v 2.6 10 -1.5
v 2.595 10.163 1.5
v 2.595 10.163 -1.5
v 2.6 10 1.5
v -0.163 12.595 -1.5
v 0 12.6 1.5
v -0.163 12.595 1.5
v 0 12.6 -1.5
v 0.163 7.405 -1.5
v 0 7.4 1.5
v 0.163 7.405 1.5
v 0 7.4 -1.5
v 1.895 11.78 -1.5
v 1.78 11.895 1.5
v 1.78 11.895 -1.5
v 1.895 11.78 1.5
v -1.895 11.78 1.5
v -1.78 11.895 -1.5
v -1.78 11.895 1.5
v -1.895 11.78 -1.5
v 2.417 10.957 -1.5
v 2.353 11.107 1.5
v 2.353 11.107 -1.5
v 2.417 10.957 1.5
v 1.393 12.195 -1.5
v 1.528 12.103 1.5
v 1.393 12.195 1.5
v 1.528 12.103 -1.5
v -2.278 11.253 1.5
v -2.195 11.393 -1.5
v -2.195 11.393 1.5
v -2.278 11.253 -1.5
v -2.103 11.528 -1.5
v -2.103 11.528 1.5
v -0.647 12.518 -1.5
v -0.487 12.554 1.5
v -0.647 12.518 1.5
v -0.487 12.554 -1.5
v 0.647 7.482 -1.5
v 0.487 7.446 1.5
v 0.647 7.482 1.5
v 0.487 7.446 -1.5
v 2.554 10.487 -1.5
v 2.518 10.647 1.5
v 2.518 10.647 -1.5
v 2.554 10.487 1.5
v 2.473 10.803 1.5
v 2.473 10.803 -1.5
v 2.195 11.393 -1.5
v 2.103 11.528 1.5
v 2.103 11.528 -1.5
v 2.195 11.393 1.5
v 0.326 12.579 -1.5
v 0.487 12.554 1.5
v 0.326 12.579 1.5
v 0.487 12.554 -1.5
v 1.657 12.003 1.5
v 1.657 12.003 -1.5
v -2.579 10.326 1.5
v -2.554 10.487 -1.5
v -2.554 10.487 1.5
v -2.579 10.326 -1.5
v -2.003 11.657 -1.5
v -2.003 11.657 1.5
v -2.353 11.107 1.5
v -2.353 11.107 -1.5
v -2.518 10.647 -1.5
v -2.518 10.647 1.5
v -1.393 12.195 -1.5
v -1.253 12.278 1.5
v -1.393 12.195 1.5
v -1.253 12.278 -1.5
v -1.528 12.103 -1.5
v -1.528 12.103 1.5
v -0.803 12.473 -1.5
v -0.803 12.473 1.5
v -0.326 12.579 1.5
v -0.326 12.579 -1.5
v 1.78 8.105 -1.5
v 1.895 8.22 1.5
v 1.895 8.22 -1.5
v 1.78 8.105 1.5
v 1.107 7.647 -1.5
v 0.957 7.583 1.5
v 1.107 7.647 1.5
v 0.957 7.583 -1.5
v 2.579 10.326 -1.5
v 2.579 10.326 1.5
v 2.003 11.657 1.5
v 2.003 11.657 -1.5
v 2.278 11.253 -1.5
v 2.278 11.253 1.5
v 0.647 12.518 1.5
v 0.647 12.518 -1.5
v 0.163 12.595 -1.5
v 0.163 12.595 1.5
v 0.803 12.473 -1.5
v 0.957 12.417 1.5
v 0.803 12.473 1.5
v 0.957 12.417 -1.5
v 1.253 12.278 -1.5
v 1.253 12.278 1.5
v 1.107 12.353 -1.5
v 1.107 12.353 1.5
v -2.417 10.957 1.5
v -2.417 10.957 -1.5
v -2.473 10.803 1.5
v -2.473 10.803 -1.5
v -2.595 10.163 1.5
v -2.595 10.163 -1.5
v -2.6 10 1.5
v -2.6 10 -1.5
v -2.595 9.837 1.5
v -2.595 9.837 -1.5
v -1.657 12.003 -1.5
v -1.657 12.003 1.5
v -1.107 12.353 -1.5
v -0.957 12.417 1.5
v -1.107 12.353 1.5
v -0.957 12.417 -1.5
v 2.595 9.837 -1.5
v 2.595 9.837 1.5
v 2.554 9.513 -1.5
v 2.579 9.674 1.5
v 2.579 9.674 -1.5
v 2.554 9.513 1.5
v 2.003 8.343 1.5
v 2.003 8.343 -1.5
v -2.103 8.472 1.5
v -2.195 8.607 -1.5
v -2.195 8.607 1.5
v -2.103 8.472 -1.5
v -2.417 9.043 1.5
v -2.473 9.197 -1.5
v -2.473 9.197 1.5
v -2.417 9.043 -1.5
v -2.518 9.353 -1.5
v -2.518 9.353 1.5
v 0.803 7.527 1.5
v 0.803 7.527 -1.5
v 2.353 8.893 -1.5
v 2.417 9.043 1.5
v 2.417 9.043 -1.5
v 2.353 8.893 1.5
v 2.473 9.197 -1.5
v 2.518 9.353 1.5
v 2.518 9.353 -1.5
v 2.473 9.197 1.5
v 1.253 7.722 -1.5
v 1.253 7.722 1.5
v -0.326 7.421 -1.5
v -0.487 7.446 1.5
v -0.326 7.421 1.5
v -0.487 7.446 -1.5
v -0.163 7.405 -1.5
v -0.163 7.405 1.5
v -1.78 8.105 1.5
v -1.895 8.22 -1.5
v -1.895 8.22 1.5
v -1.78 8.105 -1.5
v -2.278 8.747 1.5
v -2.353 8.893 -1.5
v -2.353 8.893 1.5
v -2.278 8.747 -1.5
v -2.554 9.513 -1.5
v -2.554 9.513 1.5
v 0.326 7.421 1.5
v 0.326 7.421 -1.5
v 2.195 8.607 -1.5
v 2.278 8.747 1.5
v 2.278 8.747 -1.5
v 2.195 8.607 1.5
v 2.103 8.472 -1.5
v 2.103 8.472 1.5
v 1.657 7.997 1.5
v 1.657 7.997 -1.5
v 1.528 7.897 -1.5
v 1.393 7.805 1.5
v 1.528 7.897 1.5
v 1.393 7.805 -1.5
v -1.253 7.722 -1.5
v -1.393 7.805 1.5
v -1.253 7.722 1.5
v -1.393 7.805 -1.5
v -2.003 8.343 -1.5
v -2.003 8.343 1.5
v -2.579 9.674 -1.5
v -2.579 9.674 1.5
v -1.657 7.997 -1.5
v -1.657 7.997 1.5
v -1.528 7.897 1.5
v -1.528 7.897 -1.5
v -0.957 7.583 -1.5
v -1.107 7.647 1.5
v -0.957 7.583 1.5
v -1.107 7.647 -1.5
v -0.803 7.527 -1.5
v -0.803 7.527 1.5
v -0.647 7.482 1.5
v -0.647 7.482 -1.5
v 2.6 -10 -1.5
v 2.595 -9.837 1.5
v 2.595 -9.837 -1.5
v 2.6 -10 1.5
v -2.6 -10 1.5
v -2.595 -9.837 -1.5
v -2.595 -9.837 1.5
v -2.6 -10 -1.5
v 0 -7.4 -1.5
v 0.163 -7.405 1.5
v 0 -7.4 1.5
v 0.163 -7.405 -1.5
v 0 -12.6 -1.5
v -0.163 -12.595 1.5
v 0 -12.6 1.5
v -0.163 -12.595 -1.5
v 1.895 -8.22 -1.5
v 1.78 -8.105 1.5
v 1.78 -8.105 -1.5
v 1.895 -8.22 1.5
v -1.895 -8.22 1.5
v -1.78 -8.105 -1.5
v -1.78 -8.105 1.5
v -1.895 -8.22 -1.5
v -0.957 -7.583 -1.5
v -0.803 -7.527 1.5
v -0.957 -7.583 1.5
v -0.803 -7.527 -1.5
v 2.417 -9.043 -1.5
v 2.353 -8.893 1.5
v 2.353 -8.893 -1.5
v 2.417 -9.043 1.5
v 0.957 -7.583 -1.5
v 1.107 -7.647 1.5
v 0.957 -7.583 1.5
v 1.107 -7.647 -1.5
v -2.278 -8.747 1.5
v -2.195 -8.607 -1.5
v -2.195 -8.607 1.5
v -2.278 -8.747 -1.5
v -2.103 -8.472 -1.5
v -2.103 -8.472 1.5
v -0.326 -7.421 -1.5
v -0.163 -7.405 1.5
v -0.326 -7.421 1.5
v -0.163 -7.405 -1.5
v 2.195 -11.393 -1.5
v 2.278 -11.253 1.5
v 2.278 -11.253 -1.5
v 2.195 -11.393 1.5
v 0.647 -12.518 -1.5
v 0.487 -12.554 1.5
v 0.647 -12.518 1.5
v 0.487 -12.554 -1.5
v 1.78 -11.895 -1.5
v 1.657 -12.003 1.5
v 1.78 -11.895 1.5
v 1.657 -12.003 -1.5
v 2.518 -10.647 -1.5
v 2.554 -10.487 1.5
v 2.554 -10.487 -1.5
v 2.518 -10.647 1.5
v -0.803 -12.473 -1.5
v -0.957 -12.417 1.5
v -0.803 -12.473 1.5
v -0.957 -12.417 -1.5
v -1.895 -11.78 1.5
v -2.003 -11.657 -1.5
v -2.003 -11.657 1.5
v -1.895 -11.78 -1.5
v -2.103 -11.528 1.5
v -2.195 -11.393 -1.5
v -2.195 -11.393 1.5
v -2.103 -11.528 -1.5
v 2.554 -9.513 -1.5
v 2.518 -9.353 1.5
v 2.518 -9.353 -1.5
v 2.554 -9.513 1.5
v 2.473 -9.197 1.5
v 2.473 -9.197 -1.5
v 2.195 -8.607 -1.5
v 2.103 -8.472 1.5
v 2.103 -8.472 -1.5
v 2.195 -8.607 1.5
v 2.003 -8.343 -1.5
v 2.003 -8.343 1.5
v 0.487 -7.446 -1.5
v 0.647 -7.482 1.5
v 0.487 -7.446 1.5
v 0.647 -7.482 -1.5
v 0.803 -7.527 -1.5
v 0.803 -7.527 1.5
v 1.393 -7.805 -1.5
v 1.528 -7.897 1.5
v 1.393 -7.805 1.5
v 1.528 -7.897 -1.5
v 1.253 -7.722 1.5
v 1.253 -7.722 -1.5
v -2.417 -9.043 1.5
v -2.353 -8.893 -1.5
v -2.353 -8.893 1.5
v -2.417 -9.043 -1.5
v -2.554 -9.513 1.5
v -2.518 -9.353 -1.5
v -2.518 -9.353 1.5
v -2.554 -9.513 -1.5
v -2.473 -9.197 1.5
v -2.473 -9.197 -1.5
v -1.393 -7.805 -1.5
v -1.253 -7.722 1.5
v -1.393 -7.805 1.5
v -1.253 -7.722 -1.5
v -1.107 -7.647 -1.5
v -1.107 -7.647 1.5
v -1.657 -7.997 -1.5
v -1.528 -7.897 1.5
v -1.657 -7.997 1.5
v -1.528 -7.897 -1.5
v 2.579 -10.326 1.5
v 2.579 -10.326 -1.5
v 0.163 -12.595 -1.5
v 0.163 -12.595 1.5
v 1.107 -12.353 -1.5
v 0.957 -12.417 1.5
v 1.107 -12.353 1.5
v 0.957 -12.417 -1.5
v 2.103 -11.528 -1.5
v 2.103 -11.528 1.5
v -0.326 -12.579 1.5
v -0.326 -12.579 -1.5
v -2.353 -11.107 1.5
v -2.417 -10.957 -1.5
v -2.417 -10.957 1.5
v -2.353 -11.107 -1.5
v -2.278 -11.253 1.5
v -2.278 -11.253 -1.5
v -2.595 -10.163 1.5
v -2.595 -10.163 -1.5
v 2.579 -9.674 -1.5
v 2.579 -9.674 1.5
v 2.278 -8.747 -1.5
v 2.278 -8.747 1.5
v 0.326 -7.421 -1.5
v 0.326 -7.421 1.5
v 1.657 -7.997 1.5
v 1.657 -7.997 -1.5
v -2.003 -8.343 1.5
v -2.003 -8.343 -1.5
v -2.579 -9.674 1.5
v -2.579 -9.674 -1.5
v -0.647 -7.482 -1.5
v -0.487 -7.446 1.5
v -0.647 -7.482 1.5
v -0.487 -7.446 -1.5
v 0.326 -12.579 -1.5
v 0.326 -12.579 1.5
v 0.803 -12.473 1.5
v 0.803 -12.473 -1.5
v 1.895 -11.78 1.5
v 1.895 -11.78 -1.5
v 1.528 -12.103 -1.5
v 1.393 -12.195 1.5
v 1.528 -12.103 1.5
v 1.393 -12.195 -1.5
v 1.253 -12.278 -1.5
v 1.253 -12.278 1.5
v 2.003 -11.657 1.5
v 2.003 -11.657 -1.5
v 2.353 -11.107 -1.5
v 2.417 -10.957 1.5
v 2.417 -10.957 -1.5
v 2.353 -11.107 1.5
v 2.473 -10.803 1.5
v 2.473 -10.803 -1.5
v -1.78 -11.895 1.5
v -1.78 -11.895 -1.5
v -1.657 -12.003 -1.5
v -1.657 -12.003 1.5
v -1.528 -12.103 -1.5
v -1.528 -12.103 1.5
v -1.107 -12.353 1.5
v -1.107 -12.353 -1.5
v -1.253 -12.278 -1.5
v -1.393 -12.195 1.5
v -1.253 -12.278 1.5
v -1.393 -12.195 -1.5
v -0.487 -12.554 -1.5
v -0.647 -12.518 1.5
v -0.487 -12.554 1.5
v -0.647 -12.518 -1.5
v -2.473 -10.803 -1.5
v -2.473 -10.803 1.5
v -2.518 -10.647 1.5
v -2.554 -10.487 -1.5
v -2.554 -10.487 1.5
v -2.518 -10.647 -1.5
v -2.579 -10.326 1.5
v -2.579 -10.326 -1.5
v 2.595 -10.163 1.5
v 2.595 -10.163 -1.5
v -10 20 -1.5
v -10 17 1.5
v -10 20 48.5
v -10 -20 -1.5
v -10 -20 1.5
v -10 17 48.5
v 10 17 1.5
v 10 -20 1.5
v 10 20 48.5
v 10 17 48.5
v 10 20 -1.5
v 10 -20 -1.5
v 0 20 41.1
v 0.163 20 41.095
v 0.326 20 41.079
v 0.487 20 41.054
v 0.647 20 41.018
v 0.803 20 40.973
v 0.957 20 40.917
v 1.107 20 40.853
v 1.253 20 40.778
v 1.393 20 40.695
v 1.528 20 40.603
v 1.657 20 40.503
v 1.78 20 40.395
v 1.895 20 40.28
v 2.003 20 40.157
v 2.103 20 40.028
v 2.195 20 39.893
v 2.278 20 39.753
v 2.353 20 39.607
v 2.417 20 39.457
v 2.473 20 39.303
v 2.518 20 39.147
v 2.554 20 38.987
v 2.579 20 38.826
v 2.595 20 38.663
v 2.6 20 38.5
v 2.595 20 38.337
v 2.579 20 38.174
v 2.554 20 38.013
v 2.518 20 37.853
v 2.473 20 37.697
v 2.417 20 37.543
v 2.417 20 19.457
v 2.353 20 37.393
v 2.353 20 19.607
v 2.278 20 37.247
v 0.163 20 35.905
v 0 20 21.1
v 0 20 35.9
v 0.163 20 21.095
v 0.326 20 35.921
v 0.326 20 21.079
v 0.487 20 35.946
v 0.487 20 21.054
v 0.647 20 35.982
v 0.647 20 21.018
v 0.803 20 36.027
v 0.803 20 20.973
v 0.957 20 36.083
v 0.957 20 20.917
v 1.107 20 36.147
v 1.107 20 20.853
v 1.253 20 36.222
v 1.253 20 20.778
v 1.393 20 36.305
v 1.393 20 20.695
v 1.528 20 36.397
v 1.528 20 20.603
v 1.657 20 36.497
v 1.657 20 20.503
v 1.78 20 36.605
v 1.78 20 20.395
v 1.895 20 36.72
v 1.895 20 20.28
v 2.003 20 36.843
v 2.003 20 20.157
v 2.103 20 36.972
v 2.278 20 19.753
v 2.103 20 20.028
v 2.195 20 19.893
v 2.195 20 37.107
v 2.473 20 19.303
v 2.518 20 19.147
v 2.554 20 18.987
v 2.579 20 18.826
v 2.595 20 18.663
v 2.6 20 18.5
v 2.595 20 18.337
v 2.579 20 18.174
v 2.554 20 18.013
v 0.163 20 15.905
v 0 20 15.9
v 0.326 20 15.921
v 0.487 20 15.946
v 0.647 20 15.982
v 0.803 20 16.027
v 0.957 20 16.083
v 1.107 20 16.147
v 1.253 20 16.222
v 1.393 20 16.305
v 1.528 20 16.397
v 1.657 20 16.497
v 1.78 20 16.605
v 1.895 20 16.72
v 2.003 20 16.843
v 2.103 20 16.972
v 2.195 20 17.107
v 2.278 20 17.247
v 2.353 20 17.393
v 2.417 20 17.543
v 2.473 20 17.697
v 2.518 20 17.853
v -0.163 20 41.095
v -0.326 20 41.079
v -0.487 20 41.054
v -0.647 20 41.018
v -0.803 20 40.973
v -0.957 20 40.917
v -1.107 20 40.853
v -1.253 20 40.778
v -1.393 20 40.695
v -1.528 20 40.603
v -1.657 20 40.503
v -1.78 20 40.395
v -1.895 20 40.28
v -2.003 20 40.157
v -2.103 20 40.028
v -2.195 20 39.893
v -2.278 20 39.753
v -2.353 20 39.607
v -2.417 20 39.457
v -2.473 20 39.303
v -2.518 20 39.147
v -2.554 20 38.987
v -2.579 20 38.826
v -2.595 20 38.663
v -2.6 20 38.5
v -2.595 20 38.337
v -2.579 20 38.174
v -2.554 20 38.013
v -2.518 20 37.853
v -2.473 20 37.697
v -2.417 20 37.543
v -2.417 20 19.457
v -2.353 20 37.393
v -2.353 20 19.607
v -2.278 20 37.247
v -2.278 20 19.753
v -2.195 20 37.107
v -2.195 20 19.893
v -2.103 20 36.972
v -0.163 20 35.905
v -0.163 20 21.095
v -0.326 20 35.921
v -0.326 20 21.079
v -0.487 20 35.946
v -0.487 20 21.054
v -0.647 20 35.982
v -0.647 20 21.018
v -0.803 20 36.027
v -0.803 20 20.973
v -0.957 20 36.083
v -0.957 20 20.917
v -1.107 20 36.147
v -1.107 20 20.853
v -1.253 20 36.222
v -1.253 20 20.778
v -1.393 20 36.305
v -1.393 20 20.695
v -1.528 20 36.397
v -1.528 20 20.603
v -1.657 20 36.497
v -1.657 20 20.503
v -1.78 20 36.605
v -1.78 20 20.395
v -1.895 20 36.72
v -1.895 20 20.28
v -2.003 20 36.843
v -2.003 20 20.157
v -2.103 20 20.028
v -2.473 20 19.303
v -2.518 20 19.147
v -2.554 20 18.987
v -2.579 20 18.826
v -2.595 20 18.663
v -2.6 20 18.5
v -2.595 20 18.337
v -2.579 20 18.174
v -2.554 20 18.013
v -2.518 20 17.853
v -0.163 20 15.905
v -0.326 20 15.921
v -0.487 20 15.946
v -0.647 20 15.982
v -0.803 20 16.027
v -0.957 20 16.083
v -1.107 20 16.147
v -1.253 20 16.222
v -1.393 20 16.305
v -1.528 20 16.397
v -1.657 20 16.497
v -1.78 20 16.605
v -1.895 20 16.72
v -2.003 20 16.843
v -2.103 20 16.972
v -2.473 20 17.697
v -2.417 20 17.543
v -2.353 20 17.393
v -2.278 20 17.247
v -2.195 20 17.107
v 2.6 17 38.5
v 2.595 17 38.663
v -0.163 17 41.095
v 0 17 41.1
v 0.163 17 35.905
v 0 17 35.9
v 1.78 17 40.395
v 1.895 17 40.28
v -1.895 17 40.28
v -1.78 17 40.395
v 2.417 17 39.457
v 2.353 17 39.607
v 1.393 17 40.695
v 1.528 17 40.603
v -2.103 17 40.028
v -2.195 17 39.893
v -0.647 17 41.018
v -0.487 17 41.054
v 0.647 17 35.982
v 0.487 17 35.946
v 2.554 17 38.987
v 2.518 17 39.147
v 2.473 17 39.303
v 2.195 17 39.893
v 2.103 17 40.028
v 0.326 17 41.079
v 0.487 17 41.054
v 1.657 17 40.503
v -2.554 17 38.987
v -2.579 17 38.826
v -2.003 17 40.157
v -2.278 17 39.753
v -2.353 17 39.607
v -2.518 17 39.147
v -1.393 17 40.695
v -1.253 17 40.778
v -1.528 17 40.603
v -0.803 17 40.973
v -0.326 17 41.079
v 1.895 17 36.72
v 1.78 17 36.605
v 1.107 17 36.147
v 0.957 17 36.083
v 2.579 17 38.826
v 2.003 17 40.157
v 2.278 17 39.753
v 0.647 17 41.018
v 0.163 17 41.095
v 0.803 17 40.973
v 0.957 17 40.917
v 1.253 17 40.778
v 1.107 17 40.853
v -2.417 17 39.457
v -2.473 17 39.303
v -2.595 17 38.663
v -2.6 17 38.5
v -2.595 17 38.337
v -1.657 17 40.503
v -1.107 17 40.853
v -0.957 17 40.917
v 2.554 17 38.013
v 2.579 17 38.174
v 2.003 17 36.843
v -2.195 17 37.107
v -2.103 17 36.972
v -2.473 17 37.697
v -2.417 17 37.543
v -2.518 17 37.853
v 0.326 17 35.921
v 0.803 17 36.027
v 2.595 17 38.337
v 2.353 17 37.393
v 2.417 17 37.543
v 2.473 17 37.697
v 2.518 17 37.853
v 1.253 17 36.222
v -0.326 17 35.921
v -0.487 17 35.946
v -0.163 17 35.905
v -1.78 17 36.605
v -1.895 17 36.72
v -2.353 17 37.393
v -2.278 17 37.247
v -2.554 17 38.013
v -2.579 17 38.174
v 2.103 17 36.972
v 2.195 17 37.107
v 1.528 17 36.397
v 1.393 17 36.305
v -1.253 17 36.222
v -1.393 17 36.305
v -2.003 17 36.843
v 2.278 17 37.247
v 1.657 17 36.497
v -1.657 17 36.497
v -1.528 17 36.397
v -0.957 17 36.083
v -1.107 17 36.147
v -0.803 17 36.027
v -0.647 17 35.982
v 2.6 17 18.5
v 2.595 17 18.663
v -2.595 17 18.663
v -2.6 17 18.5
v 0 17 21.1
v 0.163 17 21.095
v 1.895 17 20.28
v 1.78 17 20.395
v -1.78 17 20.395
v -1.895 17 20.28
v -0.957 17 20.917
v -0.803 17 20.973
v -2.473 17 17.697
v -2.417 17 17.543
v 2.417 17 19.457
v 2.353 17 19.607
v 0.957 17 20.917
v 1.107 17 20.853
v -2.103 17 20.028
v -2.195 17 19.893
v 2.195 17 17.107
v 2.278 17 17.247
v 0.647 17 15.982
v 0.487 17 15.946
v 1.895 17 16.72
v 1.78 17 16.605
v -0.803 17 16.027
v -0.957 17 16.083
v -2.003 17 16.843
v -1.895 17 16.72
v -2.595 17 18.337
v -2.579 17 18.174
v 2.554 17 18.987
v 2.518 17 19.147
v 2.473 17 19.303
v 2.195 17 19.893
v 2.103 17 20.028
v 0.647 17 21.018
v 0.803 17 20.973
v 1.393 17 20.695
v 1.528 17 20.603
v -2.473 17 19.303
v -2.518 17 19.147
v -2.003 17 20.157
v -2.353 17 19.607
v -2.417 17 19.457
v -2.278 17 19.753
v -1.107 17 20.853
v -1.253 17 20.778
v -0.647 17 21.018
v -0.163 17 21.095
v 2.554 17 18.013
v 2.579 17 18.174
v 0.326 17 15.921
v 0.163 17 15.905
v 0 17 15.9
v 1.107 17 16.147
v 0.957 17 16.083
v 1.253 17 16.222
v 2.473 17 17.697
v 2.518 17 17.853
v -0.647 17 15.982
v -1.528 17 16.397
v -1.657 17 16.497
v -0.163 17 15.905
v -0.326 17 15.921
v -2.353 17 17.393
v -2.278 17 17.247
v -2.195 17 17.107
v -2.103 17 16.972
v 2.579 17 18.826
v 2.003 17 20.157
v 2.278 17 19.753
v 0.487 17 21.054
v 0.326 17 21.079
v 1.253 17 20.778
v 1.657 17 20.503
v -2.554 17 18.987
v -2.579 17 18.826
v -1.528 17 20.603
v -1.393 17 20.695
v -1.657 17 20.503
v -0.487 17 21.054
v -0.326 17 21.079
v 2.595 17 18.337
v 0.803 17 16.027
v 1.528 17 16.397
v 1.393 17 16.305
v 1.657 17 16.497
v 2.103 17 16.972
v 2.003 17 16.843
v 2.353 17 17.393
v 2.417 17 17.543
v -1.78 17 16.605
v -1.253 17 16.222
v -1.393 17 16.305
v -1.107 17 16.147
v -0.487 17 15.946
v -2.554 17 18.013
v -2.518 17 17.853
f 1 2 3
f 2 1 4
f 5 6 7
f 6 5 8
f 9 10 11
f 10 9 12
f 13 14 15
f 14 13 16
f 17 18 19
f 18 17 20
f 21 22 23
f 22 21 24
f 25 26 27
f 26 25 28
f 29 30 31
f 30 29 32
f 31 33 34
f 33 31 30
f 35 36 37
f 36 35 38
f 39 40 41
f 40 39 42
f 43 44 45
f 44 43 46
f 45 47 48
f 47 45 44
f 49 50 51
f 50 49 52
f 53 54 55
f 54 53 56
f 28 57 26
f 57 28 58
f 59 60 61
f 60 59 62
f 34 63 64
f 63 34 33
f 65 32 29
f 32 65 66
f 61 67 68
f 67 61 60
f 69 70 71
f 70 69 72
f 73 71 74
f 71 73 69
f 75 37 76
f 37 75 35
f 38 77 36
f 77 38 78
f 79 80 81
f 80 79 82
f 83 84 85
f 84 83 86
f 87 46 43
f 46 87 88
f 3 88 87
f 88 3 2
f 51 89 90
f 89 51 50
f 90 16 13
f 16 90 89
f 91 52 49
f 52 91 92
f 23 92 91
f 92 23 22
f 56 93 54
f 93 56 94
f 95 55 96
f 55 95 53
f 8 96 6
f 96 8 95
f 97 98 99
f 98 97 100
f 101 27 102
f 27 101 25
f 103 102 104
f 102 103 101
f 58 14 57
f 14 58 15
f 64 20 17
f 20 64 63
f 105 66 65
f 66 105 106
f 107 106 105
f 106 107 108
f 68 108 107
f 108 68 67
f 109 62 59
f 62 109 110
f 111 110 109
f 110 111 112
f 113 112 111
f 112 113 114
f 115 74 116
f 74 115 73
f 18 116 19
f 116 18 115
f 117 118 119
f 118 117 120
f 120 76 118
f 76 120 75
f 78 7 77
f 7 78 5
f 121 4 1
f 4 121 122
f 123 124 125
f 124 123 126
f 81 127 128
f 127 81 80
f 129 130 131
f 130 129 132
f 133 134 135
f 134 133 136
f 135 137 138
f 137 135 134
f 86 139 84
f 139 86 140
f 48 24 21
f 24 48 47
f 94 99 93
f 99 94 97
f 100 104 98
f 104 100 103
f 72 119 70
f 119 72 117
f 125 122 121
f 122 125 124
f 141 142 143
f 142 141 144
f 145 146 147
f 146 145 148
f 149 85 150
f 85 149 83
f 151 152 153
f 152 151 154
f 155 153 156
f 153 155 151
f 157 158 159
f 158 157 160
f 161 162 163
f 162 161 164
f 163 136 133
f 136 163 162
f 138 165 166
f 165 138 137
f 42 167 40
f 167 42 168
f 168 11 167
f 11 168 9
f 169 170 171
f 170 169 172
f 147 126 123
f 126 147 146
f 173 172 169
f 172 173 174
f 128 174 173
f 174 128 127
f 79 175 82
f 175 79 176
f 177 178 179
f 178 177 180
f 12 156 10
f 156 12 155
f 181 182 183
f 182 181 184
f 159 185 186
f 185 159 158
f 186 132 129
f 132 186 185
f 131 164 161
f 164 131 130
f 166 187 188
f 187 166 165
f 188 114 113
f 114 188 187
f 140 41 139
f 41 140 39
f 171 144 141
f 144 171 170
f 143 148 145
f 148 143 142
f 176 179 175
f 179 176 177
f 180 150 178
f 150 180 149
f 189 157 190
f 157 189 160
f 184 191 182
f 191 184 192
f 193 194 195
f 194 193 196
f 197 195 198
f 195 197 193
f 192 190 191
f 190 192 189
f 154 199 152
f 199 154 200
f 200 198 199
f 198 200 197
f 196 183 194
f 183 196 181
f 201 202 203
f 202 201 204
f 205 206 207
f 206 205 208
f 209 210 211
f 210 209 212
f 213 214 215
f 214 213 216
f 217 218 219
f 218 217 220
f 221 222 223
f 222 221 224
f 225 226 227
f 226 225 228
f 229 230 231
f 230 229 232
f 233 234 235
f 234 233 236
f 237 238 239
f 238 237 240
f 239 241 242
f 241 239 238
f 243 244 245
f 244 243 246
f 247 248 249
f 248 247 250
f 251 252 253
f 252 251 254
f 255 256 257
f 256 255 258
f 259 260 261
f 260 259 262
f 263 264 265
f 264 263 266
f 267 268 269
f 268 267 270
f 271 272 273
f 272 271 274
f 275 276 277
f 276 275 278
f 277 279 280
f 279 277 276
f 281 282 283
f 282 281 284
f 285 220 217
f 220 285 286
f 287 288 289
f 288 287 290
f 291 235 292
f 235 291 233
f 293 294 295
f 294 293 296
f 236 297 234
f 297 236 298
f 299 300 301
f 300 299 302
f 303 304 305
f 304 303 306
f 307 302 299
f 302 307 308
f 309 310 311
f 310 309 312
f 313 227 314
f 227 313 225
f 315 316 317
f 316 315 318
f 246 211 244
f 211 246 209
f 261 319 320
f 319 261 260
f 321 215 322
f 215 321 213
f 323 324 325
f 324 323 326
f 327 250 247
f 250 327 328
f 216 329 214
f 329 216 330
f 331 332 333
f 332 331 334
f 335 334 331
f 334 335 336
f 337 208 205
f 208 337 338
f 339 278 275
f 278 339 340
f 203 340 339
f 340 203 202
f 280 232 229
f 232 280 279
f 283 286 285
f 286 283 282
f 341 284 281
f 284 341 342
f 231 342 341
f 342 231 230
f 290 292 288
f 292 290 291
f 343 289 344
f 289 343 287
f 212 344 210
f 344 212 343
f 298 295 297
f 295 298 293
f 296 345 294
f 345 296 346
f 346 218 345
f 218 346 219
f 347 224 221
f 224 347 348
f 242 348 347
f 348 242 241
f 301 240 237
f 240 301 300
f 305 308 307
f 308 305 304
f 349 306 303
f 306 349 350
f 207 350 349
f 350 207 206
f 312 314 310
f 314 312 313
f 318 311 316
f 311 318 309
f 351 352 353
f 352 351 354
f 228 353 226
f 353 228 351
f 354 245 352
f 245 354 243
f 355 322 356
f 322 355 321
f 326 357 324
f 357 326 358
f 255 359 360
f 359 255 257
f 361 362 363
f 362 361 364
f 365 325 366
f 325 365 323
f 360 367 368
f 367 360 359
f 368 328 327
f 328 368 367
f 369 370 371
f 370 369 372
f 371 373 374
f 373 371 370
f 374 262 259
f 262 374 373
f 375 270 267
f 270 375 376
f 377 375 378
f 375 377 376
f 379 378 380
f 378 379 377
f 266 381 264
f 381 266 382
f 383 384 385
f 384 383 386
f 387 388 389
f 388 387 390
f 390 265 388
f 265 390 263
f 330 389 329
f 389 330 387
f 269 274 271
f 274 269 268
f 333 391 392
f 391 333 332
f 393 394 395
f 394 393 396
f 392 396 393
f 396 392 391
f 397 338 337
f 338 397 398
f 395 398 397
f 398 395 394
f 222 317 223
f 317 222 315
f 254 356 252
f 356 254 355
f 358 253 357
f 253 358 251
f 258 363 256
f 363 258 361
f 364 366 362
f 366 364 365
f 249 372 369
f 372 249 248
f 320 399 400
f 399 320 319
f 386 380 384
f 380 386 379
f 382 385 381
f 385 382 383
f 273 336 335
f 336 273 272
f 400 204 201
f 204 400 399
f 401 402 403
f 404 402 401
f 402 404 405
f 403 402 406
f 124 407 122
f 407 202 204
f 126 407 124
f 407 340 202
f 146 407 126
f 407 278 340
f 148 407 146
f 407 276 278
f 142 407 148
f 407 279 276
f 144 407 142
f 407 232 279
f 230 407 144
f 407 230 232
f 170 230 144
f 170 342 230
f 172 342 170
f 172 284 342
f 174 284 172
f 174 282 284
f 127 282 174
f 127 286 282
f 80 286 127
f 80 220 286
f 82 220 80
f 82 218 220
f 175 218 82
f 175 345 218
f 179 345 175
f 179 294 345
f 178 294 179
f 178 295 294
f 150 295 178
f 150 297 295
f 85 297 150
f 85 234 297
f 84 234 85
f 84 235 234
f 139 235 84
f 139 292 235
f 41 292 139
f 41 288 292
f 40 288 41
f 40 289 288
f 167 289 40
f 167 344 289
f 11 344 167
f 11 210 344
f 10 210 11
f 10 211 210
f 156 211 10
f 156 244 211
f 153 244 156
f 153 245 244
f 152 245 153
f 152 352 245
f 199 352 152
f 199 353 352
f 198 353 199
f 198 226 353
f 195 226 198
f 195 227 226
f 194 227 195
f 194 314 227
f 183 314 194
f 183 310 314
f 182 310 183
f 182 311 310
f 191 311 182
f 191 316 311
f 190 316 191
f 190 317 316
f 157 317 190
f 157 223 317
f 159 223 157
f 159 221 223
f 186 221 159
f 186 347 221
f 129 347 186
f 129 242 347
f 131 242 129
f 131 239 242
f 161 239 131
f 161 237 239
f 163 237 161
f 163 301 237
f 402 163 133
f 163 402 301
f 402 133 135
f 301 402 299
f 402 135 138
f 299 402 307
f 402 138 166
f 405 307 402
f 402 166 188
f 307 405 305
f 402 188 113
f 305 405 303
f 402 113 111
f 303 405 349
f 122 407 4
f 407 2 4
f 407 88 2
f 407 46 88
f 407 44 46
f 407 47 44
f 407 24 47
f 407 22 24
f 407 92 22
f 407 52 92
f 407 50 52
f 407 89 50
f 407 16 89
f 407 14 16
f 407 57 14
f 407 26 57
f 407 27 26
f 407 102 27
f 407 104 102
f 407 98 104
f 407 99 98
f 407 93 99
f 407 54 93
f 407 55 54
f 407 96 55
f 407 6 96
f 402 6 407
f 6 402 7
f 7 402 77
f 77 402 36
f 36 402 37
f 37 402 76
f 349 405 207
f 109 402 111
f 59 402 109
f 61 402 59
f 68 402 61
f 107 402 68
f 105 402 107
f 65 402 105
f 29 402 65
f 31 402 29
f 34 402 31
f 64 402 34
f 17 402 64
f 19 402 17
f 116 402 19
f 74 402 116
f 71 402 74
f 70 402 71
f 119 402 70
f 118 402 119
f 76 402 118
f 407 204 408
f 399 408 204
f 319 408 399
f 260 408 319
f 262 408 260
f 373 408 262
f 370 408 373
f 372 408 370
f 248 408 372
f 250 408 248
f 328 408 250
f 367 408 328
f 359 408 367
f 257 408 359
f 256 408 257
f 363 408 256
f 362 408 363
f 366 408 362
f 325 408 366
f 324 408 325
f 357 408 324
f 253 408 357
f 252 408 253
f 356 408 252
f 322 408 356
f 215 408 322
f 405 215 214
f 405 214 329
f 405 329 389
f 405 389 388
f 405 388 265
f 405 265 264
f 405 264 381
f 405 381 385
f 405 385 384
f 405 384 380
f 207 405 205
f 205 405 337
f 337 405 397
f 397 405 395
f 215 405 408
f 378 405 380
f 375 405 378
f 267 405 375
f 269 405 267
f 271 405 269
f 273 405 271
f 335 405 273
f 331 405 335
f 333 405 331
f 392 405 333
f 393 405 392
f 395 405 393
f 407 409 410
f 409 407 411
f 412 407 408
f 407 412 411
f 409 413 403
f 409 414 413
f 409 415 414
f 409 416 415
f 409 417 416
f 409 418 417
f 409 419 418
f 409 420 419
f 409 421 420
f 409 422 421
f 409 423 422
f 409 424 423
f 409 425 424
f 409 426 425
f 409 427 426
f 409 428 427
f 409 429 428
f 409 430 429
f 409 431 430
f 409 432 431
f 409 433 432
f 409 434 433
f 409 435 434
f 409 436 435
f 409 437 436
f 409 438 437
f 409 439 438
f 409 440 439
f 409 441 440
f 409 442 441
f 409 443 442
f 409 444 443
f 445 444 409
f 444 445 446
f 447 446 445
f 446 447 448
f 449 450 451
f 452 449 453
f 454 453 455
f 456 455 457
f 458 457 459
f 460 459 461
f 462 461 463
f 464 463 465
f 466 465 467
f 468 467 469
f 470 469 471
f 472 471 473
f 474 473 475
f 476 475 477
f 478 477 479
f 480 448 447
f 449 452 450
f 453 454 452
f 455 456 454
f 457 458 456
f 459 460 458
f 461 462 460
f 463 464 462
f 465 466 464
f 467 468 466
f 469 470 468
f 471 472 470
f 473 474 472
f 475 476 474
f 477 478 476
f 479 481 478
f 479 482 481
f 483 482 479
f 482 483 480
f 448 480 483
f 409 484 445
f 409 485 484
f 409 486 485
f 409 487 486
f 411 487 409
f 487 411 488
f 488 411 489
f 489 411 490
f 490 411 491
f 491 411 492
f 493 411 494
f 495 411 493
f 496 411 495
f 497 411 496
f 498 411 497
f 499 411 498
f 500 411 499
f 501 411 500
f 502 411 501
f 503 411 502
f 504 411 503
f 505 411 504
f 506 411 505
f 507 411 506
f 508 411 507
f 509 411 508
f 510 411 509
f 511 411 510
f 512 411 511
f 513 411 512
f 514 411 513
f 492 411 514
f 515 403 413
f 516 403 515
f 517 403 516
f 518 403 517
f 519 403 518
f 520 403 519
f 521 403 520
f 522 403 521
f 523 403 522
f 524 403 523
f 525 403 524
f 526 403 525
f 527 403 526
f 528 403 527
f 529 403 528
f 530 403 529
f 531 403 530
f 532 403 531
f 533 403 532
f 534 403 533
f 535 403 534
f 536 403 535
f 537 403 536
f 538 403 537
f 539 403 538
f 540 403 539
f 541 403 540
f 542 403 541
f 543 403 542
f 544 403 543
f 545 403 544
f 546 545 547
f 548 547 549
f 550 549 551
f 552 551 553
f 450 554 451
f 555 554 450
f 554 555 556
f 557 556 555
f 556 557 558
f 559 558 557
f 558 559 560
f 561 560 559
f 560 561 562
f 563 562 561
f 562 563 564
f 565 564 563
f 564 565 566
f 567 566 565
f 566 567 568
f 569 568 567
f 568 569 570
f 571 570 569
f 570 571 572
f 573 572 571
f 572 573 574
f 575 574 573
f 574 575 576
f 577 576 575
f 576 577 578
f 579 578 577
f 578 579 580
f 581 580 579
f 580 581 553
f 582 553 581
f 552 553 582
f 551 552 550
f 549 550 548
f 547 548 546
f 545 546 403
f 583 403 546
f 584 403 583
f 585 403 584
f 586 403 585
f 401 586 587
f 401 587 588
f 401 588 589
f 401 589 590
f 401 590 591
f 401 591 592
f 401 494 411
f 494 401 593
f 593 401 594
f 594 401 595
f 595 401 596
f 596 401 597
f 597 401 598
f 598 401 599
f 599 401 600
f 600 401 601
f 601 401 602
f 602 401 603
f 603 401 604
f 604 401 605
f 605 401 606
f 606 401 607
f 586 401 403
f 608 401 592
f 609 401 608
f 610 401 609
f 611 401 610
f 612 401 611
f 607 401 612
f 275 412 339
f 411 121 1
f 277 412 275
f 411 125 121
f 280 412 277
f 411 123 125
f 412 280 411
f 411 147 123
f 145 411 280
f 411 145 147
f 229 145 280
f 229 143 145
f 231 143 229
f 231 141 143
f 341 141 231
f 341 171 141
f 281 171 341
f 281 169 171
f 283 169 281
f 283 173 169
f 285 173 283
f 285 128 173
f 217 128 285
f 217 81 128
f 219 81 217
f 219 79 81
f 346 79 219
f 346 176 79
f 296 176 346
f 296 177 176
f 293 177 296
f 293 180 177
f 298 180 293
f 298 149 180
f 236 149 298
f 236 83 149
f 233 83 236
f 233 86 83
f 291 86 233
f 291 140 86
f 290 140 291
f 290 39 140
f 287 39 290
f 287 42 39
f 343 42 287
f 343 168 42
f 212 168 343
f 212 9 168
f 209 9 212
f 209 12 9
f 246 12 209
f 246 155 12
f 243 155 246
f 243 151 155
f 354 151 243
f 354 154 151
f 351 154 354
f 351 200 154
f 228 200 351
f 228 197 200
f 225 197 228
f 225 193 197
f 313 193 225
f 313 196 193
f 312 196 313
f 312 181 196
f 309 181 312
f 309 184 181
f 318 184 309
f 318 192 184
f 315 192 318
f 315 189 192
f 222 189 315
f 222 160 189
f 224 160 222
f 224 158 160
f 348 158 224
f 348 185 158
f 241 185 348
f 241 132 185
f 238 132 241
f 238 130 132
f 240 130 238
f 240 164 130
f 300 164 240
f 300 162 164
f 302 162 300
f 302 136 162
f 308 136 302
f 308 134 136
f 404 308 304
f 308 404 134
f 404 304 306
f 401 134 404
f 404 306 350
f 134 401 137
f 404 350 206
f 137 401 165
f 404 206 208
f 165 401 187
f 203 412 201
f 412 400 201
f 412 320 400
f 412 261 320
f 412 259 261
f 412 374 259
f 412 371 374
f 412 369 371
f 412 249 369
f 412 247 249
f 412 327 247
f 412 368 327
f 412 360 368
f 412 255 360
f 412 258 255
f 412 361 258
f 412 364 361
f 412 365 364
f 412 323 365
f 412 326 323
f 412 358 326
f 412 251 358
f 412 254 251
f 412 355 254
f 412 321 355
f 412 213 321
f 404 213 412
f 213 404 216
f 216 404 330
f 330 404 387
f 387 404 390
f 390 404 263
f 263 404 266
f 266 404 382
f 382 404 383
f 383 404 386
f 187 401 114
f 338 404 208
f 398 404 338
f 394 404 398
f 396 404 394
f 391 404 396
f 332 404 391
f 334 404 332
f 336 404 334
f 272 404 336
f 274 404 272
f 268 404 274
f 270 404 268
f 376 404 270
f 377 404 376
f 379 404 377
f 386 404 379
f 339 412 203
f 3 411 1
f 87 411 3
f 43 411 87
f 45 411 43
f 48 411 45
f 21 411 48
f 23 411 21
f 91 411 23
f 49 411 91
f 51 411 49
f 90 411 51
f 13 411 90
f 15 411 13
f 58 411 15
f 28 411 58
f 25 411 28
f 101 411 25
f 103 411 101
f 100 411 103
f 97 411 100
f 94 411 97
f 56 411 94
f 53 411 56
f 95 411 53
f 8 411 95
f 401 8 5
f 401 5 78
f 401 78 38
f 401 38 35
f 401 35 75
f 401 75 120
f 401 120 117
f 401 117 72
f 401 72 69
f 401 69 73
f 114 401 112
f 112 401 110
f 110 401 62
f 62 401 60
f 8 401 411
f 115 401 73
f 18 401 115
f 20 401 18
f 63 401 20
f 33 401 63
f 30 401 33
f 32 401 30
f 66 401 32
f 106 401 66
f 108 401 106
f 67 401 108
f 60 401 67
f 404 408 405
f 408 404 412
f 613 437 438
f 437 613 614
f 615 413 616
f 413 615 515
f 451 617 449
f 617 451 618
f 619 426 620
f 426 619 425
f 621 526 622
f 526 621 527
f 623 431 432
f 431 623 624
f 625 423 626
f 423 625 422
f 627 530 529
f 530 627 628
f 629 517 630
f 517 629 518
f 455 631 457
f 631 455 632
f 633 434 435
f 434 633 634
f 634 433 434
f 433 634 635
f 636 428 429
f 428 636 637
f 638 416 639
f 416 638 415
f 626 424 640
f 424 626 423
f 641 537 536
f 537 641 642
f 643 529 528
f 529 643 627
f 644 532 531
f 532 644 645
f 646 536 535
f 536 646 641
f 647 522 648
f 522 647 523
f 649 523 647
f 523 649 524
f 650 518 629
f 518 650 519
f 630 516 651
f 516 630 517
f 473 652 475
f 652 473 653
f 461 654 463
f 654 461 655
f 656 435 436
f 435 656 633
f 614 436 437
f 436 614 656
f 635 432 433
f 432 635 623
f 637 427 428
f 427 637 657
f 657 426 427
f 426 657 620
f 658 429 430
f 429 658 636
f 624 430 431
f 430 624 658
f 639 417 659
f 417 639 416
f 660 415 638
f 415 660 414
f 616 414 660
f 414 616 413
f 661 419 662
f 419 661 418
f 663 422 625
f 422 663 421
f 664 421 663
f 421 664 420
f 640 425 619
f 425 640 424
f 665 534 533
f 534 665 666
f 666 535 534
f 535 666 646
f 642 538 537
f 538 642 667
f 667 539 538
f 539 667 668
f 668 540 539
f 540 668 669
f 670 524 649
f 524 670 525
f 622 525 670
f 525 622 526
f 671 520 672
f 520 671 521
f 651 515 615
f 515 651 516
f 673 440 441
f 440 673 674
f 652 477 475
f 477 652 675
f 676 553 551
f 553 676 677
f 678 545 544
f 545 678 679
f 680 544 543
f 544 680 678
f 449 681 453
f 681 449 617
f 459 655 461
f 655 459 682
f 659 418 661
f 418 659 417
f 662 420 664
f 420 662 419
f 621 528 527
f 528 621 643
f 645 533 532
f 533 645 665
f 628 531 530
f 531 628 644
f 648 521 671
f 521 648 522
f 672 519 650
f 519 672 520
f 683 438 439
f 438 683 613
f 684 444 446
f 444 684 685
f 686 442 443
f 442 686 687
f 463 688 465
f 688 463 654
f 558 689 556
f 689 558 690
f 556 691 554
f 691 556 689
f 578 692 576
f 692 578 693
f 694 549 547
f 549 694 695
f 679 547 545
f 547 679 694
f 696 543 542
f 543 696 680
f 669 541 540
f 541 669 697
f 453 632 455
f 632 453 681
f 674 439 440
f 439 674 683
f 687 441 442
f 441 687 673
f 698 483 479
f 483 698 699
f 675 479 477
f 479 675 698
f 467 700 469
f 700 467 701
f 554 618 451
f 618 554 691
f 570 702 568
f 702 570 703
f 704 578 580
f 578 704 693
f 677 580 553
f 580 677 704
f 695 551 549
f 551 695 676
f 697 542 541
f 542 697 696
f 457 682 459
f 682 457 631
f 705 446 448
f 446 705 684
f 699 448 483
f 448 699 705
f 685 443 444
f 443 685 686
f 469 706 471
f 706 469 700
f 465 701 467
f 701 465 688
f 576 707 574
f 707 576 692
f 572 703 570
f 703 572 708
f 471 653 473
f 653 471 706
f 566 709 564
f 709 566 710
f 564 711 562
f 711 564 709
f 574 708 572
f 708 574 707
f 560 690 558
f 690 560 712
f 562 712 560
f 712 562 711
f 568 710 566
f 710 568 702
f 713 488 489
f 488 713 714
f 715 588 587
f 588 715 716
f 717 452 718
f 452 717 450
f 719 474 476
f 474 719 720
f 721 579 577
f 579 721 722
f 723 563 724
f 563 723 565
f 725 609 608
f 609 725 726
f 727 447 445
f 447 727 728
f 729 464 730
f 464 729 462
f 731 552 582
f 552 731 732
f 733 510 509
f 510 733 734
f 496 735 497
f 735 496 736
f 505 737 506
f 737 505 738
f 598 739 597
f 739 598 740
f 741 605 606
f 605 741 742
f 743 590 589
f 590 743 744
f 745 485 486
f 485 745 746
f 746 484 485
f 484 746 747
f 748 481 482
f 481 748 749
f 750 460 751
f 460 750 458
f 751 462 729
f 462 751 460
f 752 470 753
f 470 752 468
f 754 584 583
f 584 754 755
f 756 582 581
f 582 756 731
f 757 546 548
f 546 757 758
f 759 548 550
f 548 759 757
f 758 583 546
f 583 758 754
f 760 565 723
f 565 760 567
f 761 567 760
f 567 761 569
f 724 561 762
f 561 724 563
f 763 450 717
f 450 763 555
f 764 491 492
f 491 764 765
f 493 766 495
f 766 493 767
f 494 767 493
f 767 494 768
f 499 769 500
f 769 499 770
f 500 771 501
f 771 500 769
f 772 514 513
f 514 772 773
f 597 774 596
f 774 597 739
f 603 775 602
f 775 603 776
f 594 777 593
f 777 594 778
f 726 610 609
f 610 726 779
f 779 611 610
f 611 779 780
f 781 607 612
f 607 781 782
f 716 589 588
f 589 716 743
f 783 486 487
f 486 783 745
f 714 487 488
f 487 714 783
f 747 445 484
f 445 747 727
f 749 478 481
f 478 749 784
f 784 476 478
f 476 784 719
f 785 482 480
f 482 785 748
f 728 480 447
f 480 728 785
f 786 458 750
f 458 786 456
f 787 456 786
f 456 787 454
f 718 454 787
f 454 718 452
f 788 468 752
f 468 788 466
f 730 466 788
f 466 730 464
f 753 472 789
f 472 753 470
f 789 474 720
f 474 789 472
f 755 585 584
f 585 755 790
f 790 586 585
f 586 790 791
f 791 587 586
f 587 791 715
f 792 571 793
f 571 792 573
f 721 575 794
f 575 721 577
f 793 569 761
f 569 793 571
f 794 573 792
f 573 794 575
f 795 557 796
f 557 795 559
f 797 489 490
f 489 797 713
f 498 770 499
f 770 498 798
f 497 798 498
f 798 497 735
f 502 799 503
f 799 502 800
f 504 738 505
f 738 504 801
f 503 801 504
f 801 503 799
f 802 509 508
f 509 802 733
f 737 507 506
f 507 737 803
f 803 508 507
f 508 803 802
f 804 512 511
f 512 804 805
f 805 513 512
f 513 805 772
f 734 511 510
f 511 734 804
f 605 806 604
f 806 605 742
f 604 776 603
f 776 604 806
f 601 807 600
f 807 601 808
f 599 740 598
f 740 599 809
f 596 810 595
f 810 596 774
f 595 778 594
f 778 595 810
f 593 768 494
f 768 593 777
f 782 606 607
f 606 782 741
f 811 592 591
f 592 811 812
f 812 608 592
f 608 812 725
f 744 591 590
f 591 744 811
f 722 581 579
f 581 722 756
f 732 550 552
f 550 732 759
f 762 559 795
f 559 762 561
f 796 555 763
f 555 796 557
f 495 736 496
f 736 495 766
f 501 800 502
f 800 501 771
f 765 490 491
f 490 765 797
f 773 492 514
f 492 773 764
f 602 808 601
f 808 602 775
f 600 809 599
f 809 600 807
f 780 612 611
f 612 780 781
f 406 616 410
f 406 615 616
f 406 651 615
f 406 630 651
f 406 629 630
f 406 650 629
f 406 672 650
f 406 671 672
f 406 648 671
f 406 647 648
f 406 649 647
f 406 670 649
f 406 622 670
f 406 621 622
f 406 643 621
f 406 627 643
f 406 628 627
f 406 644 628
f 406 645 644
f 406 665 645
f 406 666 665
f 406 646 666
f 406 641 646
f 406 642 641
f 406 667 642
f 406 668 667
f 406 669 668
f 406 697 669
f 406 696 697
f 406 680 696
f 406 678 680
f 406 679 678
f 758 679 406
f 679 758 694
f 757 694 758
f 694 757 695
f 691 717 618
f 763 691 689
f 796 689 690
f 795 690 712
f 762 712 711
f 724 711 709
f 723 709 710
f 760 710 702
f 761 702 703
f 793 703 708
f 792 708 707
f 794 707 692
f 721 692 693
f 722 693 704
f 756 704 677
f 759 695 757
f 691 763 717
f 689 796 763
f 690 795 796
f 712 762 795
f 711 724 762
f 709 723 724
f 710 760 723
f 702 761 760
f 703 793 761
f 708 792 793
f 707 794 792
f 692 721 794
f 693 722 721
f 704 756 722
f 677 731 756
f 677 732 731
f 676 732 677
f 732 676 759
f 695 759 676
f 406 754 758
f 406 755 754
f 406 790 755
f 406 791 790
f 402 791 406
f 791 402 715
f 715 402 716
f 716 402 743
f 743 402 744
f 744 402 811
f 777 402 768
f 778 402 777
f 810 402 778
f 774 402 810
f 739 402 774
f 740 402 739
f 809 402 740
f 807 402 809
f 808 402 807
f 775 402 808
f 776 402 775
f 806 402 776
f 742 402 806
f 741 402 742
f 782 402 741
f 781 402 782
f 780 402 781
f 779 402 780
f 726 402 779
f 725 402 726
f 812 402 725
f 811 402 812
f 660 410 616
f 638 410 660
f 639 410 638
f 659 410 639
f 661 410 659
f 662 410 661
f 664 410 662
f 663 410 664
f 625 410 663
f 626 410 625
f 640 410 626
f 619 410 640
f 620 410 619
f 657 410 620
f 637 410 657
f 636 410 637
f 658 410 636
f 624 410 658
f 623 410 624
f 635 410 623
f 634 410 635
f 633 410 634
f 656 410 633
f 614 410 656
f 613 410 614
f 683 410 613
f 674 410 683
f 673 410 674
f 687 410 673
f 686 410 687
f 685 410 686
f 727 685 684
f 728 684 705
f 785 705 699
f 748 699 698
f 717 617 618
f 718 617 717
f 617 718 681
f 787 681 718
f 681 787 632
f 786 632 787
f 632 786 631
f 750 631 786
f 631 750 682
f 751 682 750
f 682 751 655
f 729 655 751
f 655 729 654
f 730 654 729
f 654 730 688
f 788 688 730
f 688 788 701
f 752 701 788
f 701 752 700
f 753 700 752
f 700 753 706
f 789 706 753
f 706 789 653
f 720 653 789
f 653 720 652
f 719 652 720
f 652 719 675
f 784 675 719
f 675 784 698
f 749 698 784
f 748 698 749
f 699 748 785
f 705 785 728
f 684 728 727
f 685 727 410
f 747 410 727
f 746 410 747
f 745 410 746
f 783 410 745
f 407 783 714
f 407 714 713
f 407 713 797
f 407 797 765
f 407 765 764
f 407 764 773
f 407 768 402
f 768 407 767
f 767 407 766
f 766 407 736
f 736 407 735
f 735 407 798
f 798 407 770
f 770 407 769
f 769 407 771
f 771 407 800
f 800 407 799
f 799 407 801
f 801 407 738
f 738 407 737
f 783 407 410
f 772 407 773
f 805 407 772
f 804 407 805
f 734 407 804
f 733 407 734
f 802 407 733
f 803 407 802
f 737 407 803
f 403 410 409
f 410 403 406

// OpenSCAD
$fn=100;

w=20;
l=40;
lv=50;
m5=2.6;
h=3;

module face(vert=false){
    if(vert){
        translate([0,l/2-h/2,lv/2-h/2])
        rotate([90,0,0])
        difference(){
        cube([w,lv,h],center=true);
        
        for(i=[0:1]){
            translate([0, lv/2-10-(i*20),-4])
            cylinder(100,r=m5);
            }
        
    }
    }
    else {
    difference(){
        cube([w,l,h],center=true);
        
        for(i=[0:1]){
            translate([0, l/2-10-(i*20),-4])
            cylinder(100,r=m5);
        }
    }
}
}

face();
face(true);
